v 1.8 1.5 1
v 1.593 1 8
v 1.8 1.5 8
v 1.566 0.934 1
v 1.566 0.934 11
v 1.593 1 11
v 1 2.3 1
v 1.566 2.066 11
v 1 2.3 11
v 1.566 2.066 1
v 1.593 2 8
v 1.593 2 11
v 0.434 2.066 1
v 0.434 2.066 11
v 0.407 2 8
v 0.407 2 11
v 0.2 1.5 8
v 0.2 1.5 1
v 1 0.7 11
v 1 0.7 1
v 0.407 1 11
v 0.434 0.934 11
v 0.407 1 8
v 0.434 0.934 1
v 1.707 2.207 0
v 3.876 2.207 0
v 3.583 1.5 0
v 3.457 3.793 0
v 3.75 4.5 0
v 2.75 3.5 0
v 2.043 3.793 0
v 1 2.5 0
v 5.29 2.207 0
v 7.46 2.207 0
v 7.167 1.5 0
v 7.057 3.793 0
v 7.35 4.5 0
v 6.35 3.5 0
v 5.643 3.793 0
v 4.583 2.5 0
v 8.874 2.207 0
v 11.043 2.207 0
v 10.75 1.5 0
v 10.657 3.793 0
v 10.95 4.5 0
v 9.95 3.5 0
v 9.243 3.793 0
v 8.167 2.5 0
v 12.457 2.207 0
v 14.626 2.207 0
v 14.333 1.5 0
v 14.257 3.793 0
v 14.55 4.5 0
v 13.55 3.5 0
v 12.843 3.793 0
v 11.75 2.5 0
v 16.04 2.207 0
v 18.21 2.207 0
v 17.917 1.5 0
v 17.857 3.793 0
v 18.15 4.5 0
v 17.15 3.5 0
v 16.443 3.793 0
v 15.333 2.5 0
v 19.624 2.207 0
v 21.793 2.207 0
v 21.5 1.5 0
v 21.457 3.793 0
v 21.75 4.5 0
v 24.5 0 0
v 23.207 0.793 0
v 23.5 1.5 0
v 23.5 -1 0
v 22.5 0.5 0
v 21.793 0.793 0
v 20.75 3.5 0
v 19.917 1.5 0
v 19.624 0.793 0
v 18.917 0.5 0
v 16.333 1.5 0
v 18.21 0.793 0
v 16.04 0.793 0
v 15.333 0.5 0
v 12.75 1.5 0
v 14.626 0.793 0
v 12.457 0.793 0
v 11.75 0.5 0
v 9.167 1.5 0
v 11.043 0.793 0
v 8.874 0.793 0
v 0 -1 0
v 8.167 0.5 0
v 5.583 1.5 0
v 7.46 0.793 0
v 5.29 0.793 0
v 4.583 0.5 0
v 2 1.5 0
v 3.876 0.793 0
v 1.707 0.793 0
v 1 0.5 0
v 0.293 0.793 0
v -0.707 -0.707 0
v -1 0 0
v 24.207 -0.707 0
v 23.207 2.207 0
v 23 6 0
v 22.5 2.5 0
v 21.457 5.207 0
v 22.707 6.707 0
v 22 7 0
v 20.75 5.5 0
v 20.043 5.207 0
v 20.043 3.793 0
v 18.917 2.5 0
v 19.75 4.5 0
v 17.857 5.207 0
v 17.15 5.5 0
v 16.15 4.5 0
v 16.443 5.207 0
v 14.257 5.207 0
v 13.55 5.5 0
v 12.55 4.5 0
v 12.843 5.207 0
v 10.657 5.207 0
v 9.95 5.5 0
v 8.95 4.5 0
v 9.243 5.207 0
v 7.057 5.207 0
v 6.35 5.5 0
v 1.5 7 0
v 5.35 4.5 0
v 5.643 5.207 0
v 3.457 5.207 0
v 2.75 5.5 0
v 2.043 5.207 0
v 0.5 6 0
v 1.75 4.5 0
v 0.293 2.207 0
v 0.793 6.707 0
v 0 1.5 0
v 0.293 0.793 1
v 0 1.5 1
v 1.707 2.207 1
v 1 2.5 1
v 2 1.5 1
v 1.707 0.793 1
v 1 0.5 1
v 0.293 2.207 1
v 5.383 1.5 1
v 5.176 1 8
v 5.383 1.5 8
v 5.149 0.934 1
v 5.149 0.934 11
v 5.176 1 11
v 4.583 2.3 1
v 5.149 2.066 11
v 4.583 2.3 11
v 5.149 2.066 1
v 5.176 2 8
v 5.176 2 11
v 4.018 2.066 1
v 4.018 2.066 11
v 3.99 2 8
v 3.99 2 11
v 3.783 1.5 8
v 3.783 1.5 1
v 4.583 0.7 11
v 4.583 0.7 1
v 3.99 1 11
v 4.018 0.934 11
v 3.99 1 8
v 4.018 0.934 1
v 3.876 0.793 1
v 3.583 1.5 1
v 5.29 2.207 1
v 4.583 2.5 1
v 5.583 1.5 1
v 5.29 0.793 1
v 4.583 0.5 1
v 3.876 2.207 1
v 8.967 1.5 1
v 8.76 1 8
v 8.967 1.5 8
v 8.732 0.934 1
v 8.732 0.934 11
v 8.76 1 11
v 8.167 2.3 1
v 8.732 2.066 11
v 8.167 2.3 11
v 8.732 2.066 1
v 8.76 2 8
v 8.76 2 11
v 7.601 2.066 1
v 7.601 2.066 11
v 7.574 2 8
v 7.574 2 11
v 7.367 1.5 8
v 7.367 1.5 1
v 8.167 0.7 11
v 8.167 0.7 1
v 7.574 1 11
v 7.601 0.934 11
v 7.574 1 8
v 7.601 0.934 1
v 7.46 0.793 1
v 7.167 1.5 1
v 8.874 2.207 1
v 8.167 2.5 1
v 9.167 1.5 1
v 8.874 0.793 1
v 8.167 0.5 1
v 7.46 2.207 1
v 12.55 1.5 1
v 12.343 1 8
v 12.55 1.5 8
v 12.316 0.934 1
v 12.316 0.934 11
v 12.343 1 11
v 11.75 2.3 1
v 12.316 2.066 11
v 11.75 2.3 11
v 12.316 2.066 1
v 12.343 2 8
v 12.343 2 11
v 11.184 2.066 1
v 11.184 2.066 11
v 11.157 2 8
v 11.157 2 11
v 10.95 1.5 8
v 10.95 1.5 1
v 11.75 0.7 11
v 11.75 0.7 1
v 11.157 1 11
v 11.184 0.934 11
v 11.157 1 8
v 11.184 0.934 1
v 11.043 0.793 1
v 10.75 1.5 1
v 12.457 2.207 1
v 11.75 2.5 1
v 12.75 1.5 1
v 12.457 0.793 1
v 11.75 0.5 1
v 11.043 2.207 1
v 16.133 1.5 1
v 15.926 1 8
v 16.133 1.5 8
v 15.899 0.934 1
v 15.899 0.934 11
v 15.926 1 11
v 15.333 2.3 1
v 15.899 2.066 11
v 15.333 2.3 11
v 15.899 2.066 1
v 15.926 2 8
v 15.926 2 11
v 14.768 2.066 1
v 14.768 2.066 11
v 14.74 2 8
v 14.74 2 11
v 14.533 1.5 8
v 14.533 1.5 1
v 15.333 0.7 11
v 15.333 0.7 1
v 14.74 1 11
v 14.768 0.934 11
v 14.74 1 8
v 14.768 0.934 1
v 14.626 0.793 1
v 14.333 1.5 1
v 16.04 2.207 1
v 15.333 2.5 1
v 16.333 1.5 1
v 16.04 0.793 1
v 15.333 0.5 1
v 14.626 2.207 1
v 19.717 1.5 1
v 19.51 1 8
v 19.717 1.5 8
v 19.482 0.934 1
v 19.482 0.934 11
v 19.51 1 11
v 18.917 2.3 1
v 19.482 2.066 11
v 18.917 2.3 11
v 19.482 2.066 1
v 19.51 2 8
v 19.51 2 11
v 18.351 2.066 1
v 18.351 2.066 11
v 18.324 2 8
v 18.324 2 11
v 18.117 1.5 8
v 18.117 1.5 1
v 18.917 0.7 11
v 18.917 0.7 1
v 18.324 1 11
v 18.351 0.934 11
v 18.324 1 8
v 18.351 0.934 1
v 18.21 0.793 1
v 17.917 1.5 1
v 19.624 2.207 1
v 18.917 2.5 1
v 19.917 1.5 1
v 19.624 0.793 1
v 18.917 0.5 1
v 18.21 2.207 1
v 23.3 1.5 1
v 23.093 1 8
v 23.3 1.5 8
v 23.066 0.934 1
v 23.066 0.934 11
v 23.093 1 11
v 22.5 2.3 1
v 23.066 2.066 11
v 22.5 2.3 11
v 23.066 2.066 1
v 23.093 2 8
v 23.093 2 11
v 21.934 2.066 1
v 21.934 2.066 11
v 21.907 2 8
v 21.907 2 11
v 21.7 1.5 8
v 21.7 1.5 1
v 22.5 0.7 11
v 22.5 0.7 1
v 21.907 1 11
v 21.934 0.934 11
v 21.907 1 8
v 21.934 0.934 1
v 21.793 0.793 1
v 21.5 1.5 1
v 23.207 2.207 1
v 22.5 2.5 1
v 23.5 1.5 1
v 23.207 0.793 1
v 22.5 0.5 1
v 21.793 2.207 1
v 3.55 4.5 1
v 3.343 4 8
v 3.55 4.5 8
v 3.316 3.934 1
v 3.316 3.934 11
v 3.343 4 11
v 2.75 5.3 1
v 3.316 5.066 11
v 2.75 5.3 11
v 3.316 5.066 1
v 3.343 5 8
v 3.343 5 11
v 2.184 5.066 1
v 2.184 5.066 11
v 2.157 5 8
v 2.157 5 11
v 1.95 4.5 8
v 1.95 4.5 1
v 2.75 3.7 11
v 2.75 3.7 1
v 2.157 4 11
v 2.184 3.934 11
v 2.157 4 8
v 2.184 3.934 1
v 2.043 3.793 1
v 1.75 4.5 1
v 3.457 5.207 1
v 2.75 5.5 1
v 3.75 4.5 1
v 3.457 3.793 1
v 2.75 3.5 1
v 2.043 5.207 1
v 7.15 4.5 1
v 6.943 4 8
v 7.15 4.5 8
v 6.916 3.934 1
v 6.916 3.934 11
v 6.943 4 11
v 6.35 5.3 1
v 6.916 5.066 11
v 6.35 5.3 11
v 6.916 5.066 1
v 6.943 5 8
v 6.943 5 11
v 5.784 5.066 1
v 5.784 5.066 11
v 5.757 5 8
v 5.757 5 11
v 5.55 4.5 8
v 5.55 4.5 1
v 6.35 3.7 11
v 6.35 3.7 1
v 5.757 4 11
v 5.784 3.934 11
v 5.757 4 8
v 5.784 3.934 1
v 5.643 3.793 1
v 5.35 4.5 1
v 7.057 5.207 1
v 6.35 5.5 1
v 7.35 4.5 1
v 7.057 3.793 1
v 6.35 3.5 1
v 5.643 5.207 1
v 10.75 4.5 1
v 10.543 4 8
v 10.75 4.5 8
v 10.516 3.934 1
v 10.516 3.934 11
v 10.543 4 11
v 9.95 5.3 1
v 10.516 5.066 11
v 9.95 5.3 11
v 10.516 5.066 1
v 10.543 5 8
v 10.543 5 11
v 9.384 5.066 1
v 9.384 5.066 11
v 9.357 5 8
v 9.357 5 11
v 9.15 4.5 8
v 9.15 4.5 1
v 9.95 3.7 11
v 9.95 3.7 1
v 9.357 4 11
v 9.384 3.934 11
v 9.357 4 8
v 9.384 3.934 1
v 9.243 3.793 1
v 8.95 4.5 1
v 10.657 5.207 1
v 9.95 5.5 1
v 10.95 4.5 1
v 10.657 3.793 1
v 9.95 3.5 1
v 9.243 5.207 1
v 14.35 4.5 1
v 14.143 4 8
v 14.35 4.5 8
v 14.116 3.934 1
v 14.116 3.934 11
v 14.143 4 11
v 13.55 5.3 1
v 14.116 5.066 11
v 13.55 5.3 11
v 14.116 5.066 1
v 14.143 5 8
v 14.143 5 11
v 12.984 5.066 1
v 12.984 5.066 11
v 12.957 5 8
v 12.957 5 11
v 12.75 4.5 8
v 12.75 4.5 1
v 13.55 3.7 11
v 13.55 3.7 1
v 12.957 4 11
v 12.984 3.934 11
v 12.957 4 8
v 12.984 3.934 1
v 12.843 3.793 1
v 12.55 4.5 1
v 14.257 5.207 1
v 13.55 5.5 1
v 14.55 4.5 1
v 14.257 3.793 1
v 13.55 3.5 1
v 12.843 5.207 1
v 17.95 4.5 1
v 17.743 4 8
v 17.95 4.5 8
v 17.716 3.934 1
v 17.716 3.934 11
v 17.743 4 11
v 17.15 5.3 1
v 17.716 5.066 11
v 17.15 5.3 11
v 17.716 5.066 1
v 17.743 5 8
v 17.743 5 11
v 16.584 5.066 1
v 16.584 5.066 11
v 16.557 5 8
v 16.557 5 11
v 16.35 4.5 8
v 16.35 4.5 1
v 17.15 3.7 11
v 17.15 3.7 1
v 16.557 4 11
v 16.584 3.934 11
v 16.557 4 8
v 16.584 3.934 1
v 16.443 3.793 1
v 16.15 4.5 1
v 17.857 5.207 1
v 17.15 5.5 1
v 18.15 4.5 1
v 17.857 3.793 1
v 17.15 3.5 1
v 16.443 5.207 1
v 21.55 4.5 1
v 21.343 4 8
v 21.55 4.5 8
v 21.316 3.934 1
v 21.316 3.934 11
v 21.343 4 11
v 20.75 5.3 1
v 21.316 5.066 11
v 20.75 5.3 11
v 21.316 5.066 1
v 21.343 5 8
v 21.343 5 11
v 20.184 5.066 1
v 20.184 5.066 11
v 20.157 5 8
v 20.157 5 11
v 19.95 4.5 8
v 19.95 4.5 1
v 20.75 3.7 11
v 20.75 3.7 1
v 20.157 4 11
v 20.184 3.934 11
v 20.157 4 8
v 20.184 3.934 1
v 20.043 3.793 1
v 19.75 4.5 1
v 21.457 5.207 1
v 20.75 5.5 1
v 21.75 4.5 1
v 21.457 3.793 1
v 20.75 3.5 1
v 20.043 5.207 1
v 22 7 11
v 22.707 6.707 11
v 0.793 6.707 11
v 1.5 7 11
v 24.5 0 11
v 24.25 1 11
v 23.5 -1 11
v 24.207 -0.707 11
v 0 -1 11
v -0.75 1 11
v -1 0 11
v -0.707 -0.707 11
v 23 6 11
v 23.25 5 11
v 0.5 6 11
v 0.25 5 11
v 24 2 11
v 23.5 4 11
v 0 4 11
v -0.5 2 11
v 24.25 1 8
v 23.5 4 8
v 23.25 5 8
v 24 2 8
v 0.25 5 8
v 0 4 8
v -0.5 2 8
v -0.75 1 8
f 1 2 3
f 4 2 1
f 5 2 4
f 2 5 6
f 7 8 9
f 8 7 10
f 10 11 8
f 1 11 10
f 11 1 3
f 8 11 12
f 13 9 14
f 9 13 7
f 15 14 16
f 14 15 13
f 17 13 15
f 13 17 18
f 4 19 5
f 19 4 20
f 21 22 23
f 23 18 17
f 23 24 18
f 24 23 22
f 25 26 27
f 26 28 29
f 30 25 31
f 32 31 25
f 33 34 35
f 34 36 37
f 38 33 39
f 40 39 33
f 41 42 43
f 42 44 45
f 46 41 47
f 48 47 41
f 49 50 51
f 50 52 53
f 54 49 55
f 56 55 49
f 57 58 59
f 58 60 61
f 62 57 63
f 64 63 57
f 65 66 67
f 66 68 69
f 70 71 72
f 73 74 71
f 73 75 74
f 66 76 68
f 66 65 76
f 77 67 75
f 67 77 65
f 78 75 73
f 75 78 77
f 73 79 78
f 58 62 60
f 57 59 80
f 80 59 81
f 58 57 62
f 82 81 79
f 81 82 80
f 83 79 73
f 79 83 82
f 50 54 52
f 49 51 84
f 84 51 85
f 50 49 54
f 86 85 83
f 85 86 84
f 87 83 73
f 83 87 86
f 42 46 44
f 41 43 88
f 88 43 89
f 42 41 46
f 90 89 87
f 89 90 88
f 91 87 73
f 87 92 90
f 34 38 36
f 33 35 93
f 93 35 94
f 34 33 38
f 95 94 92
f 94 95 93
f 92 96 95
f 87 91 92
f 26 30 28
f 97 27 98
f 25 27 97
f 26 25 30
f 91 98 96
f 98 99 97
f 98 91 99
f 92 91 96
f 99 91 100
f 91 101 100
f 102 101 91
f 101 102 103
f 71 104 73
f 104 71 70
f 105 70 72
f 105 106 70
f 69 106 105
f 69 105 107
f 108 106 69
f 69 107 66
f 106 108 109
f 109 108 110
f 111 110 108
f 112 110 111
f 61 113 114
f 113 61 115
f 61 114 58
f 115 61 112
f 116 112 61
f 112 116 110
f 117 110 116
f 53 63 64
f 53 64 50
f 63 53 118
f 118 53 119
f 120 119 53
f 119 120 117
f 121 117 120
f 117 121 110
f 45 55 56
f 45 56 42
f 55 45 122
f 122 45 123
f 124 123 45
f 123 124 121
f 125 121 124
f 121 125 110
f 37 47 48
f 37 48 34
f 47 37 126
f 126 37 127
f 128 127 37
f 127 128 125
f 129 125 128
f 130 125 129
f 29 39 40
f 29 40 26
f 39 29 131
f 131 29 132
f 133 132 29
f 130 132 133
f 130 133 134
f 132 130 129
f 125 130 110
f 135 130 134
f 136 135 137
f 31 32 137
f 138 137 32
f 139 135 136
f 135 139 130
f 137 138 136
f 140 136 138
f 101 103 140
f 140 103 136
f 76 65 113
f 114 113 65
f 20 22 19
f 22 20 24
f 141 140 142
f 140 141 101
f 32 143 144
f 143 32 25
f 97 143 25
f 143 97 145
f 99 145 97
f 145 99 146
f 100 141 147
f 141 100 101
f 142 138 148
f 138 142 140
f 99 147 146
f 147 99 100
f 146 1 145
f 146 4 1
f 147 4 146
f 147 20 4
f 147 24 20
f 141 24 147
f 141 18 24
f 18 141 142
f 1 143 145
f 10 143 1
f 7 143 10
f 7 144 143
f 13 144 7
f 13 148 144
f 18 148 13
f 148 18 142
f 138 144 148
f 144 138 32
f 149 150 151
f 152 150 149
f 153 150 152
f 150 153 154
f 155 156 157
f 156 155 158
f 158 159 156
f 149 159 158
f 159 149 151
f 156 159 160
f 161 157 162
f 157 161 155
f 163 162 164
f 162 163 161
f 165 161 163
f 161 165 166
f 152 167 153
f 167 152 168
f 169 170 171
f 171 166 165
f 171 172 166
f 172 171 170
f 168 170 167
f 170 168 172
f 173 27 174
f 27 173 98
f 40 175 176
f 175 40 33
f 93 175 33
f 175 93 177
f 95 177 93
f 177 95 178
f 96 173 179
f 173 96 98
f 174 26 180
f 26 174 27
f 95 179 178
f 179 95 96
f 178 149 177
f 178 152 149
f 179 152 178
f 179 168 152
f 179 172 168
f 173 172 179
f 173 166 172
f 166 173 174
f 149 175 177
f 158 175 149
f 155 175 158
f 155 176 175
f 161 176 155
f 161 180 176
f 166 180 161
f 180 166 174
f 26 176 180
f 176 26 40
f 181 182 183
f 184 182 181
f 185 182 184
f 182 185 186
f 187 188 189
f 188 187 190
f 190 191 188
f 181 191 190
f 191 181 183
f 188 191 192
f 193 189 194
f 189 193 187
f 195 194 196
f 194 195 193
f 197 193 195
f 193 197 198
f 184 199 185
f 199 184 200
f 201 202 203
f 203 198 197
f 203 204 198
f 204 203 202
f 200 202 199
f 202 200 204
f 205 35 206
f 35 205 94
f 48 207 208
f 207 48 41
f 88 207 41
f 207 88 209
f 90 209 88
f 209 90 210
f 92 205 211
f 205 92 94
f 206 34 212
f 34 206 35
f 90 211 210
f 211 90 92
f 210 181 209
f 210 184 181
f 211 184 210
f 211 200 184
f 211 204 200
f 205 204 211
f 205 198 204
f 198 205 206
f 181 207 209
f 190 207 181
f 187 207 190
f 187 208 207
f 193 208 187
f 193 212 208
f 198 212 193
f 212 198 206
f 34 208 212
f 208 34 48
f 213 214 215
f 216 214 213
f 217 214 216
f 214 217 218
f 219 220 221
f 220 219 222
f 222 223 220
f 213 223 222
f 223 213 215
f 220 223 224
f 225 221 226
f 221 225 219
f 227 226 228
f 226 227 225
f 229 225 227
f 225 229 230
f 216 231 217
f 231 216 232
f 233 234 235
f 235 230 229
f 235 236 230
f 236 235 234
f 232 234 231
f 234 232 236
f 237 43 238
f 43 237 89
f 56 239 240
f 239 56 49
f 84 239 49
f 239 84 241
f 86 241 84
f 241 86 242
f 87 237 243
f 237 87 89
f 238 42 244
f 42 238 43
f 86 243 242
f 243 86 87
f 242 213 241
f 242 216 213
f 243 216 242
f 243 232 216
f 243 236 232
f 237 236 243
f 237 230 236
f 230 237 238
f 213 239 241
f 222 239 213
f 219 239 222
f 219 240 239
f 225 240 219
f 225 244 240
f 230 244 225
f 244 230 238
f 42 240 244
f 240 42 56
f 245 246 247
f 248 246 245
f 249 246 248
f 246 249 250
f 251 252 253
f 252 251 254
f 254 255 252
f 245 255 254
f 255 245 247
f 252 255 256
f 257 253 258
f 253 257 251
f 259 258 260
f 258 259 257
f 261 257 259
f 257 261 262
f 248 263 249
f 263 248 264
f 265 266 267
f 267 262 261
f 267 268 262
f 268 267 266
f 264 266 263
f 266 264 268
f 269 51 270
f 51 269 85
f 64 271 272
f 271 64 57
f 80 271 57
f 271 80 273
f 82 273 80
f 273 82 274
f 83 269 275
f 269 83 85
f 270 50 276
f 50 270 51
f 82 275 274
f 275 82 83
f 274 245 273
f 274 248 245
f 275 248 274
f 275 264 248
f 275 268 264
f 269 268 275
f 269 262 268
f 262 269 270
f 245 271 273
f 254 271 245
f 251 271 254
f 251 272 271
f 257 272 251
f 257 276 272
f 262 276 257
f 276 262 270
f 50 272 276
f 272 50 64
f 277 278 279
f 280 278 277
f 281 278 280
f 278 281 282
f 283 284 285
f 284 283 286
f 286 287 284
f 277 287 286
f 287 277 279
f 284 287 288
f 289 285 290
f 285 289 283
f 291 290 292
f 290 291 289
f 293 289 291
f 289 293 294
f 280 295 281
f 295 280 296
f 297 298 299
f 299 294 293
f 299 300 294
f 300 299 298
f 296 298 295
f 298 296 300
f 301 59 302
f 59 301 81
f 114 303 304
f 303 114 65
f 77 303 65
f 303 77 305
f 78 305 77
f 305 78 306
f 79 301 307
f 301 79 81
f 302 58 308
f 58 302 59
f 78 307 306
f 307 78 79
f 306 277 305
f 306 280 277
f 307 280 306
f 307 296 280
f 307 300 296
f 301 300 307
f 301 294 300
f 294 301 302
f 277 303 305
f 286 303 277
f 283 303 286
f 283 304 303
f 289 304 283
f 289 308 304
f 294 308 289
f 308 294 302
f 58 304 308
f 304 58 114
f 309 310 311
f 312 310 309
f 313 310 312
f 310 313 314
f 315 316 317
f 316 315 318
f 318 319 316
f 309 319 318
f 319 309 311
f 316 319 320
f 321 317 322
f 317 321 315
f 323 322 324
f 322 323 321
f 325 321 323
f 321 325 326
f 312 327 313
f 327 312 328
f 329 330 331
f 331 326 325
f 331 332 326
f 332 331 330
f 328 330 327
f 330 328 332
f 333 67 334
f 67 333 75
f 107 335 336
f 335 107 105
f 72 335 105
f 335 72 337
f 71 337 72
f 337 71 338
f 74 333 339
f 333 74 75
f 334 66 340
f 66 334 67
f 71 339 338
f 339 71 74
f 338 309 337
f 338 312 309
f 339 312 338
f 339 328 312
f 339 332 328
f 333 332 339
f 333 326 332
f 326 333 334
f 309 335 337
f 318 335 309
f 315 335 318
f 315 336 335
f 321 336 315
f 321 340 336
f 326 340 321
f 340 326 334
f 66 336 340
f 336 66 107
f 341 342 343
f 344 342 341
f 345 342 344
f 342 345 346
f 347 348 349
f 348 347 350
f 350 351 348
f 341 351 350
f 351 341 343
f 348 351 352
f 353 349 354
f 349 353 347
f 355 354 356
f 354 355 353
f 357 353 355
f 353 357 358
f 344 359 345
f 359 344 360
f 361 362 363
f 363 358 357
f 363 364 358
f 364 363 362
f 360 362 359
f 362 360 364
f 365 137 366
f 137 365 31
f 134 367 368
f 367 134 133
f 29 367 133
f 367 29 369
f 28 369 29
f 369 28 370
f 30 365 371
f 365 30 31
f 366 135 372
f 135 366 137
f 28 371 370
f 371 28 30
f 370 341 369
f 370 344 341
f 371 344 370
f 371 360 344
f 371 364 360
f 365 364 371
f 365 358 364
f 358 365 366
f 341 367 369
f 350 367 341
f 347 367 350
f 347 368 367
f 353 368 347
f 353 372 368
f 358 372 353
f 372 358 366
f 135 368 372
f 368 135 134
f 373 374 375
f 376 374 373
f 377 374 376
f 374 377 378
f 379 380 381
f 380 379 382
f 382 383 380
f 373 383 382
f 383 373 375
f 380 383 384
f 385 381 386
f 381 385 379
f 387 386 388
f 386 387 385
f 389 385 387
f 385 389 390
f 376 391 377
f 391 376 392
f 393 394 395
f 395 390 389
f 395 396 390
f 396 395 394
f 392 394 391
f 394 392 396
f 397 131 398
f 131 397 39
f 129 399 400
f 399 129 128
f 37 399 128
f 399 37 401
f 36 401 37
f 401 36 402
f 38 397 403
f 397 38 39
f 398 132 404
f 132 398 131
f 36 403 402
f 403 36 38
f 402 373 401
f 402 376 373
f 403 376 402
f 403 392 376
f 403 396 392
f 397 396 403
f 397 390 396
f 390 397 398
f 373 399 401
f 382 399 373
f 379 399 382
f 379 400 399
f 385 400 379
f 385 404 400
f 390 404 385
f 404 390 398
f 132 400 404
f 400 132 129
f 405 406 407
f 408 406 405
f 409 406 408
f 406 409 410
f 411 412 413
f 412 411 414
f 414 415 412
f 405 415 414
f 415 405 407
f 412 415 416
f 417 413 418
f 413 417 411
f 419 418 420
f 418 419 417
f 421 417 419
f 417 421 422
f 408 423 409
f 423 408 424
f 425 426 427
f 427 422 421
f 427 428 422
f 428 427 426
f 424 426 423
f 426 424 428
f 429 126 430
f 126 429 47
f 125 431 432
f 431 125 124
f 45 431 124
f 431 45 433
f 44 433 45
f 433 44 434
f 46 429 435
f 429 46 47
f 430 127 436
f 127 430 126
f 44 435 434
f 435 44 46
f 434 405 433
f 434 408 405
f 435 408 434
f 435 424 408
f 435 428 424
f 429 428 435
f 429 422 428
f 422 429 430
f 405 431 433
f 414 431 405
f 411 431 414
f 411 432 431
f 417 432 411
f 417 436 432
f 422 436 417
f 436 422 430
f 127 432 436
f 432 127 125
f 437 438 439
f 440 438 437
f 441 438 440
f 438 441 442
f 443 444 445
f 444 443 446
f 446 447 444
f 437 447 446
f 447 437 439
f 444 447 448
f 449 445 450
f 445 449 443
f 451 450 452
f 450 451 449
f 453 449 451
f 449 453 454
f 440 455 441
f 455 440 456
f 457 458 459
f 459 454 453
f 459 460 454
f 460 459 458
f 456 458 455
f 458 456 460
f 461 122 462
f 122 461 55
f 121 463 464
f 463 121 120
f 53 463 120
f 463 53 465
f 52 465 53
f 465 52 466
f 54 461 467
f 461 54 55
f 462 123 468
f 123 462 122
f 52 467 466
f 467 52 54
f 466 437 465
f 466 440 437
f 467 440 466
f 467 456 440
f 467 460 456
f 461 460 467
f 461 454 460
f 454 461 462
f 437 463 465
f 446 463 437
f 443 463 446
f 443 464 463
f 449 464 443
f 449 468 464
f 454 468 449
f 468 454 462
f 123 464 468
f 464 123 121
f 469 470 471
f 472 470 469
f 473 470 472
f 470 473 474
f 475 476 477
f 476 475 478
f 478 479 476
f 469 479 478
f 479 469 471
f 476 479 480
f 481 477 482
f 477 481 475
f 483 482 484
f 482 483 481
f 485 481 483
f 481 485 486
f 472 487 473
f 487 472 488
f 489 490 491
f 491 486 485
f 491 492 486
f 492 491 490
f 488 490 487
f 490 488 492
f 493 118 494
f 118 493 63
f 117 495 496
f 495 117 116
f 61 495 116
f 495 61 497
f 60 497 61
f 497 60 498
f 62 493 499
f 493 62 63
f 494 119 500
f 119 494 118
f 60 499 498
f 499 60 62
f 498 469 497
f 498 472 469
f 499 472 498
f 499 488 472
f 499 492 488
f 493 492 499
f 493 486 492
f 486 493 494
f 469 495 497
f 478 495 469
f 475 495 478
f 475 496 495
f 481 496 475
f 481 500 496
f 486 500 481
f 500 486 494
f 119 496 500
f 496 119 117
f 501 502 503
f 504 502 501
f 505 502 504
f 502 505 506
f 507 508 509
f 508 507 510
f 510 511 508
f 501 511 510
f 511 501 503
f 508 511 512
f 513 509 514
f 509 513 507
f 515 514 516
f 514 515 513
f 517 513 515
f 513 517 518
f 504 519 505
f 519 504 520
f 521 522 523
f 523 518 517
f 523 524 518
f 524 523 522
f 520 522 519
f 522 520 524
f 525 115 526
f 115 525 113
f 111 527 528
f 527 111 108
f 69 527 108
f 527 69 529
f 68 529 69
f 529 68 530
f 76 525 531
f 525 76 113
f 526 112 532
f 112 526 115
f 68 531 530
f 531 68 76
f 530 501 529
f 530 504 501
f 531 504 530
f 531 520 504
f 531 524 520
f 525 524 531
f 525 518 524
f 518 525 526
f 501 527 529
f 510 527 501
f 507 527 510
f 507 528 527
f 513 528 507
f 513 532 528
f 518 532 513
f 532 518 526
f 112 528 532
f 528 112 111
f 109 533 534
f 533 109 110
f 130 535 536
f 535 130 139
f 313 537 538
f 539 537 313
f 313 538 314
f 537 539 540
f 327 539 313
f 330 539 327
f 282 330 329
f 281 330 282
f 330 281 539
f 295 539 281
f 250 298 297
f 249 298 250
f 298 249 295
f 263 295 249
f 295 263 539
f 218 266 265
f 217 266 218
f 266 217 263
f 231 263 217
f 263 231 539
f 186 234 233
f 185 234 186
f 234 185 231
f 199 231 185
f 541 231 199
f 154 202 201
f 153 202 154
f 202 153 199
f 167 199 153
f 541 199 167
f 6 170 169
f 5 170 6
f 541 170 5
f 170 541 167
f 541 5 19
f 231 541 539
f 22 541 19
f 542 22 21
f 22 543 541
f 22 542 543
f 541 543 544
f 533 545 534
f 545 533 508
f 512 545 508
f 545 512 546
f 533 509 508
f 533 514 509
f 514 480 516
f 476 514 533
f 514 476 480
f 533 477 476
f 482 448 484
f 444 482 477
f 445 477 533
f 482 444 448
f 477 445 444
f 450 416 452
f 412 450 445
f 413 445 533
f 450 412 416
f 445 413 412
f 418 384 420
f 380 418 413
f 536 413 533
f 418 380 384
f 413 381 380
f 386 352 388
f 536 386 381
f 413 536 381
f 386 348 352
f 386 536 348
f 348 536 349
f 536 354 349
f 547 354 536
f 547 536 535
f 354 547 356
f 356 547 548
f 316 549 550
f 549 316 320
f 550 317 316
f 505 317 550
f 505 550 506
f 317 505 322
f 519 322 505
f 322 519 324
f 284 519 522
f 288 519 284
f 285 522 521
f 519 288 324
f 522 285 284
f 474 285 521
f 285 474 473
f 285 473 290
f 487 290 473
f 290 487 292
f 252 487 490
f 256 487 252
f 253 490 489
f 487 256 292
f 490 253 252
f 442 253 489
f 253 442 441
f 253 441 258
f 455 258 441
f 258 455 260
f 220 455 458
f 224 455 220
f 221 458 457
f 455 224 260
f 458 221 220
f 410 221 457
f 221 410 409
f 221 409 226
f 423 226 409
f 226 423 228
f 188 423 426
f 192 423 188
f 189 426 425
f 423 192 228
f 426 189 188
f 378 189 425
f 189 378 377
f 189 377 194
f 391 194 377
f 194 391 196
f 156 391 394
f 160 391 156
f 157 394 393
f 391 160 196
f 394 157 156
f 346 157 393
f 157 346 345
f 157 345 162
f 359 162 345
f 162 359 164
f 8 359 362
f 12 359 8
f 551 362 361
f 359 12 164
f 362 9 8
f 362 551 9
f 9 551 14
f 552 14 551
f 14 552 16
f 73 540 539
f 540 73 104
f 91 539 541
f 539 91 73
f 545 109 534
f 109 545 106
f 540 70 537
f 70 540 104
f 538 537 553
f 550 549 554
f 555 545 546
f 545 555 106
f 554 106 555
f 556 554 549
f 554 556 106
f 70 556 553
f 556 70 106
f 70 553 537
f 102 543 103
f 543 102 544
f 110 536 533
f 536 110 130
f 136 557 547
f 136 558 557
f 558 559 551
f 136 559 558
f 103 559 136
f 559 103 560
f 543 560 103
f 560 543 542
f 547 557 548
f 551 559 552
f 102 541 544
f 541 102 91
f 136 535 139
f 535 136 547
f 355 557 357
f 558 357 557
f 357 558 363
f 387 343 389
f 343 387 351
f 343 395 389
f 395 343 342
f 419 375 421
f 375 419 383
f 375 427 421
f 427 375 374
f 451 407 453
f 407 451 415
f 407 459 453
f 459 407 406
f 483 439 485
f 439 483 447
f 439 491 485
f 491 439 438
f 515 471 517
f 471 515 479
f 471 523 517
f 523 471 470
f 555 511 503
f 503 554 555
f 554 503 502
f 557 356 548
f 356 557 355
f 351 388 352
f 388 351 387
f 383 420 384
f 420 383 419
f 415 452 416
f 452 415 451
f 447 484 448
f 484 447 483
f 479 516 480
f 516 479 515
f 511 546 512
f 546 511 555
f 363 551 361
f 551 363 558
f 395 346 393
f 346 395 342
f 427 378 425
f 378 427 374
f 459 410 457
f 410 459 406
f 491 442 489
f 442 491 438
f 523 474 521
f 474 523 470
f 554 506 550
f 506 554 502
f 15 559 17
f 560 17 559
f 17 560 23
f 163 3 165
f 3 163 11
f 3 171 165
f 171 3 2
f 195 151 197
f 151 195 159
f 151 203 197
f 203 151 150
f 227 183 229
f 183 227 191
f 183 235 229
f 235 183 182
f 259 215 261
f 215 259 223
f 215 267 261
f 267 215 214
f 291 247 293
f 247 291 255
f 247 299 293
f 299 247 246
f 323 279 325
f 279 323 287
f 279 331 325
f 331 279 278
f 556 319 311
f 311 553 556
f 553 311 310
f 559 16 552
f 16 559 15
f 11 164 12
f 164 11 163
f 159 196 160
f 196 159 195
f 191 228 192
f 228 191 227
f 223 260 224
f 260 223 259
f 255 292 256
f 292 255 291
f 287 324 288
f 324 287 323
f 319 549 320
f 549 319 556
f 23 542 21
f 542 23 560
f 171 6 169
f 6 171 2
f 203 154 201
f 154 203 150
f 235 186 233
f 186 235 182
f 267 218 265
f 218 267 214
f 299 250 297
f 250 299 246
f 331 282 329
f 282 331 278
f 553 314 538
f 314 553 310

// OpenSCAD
// Fujinet 1.0 plug insert.
// made by Jakub Husak, 2021
// do-what-you-want-ware.

difference(){
    linear_extrude(height=11){
        minkowski(){
        circle($fn=8);
        polygon(points=[[0,0],[1.5,6],[22,6],[23.5,0]]);
        }
    }

    for (i =[0 : 21.5/6 : 21.5])
        translate([i+1, 1.5, 0])
            pin();
    
    for (i =[0:18/5:18])
        translate([i+2.75, 4.5, 0])
            pin();
    
    translate([-2, 4, 8])
        cube([30, 1, 3]);
    translate([-2, 1, 8])
        cube([30, 1, 3]);
    
}

module pin(){
    union()
    {
        cylinder(h=12, $fn=8, r=0.8);
        cylinder(h=1,  $fn=8, r=1);
        }
}
